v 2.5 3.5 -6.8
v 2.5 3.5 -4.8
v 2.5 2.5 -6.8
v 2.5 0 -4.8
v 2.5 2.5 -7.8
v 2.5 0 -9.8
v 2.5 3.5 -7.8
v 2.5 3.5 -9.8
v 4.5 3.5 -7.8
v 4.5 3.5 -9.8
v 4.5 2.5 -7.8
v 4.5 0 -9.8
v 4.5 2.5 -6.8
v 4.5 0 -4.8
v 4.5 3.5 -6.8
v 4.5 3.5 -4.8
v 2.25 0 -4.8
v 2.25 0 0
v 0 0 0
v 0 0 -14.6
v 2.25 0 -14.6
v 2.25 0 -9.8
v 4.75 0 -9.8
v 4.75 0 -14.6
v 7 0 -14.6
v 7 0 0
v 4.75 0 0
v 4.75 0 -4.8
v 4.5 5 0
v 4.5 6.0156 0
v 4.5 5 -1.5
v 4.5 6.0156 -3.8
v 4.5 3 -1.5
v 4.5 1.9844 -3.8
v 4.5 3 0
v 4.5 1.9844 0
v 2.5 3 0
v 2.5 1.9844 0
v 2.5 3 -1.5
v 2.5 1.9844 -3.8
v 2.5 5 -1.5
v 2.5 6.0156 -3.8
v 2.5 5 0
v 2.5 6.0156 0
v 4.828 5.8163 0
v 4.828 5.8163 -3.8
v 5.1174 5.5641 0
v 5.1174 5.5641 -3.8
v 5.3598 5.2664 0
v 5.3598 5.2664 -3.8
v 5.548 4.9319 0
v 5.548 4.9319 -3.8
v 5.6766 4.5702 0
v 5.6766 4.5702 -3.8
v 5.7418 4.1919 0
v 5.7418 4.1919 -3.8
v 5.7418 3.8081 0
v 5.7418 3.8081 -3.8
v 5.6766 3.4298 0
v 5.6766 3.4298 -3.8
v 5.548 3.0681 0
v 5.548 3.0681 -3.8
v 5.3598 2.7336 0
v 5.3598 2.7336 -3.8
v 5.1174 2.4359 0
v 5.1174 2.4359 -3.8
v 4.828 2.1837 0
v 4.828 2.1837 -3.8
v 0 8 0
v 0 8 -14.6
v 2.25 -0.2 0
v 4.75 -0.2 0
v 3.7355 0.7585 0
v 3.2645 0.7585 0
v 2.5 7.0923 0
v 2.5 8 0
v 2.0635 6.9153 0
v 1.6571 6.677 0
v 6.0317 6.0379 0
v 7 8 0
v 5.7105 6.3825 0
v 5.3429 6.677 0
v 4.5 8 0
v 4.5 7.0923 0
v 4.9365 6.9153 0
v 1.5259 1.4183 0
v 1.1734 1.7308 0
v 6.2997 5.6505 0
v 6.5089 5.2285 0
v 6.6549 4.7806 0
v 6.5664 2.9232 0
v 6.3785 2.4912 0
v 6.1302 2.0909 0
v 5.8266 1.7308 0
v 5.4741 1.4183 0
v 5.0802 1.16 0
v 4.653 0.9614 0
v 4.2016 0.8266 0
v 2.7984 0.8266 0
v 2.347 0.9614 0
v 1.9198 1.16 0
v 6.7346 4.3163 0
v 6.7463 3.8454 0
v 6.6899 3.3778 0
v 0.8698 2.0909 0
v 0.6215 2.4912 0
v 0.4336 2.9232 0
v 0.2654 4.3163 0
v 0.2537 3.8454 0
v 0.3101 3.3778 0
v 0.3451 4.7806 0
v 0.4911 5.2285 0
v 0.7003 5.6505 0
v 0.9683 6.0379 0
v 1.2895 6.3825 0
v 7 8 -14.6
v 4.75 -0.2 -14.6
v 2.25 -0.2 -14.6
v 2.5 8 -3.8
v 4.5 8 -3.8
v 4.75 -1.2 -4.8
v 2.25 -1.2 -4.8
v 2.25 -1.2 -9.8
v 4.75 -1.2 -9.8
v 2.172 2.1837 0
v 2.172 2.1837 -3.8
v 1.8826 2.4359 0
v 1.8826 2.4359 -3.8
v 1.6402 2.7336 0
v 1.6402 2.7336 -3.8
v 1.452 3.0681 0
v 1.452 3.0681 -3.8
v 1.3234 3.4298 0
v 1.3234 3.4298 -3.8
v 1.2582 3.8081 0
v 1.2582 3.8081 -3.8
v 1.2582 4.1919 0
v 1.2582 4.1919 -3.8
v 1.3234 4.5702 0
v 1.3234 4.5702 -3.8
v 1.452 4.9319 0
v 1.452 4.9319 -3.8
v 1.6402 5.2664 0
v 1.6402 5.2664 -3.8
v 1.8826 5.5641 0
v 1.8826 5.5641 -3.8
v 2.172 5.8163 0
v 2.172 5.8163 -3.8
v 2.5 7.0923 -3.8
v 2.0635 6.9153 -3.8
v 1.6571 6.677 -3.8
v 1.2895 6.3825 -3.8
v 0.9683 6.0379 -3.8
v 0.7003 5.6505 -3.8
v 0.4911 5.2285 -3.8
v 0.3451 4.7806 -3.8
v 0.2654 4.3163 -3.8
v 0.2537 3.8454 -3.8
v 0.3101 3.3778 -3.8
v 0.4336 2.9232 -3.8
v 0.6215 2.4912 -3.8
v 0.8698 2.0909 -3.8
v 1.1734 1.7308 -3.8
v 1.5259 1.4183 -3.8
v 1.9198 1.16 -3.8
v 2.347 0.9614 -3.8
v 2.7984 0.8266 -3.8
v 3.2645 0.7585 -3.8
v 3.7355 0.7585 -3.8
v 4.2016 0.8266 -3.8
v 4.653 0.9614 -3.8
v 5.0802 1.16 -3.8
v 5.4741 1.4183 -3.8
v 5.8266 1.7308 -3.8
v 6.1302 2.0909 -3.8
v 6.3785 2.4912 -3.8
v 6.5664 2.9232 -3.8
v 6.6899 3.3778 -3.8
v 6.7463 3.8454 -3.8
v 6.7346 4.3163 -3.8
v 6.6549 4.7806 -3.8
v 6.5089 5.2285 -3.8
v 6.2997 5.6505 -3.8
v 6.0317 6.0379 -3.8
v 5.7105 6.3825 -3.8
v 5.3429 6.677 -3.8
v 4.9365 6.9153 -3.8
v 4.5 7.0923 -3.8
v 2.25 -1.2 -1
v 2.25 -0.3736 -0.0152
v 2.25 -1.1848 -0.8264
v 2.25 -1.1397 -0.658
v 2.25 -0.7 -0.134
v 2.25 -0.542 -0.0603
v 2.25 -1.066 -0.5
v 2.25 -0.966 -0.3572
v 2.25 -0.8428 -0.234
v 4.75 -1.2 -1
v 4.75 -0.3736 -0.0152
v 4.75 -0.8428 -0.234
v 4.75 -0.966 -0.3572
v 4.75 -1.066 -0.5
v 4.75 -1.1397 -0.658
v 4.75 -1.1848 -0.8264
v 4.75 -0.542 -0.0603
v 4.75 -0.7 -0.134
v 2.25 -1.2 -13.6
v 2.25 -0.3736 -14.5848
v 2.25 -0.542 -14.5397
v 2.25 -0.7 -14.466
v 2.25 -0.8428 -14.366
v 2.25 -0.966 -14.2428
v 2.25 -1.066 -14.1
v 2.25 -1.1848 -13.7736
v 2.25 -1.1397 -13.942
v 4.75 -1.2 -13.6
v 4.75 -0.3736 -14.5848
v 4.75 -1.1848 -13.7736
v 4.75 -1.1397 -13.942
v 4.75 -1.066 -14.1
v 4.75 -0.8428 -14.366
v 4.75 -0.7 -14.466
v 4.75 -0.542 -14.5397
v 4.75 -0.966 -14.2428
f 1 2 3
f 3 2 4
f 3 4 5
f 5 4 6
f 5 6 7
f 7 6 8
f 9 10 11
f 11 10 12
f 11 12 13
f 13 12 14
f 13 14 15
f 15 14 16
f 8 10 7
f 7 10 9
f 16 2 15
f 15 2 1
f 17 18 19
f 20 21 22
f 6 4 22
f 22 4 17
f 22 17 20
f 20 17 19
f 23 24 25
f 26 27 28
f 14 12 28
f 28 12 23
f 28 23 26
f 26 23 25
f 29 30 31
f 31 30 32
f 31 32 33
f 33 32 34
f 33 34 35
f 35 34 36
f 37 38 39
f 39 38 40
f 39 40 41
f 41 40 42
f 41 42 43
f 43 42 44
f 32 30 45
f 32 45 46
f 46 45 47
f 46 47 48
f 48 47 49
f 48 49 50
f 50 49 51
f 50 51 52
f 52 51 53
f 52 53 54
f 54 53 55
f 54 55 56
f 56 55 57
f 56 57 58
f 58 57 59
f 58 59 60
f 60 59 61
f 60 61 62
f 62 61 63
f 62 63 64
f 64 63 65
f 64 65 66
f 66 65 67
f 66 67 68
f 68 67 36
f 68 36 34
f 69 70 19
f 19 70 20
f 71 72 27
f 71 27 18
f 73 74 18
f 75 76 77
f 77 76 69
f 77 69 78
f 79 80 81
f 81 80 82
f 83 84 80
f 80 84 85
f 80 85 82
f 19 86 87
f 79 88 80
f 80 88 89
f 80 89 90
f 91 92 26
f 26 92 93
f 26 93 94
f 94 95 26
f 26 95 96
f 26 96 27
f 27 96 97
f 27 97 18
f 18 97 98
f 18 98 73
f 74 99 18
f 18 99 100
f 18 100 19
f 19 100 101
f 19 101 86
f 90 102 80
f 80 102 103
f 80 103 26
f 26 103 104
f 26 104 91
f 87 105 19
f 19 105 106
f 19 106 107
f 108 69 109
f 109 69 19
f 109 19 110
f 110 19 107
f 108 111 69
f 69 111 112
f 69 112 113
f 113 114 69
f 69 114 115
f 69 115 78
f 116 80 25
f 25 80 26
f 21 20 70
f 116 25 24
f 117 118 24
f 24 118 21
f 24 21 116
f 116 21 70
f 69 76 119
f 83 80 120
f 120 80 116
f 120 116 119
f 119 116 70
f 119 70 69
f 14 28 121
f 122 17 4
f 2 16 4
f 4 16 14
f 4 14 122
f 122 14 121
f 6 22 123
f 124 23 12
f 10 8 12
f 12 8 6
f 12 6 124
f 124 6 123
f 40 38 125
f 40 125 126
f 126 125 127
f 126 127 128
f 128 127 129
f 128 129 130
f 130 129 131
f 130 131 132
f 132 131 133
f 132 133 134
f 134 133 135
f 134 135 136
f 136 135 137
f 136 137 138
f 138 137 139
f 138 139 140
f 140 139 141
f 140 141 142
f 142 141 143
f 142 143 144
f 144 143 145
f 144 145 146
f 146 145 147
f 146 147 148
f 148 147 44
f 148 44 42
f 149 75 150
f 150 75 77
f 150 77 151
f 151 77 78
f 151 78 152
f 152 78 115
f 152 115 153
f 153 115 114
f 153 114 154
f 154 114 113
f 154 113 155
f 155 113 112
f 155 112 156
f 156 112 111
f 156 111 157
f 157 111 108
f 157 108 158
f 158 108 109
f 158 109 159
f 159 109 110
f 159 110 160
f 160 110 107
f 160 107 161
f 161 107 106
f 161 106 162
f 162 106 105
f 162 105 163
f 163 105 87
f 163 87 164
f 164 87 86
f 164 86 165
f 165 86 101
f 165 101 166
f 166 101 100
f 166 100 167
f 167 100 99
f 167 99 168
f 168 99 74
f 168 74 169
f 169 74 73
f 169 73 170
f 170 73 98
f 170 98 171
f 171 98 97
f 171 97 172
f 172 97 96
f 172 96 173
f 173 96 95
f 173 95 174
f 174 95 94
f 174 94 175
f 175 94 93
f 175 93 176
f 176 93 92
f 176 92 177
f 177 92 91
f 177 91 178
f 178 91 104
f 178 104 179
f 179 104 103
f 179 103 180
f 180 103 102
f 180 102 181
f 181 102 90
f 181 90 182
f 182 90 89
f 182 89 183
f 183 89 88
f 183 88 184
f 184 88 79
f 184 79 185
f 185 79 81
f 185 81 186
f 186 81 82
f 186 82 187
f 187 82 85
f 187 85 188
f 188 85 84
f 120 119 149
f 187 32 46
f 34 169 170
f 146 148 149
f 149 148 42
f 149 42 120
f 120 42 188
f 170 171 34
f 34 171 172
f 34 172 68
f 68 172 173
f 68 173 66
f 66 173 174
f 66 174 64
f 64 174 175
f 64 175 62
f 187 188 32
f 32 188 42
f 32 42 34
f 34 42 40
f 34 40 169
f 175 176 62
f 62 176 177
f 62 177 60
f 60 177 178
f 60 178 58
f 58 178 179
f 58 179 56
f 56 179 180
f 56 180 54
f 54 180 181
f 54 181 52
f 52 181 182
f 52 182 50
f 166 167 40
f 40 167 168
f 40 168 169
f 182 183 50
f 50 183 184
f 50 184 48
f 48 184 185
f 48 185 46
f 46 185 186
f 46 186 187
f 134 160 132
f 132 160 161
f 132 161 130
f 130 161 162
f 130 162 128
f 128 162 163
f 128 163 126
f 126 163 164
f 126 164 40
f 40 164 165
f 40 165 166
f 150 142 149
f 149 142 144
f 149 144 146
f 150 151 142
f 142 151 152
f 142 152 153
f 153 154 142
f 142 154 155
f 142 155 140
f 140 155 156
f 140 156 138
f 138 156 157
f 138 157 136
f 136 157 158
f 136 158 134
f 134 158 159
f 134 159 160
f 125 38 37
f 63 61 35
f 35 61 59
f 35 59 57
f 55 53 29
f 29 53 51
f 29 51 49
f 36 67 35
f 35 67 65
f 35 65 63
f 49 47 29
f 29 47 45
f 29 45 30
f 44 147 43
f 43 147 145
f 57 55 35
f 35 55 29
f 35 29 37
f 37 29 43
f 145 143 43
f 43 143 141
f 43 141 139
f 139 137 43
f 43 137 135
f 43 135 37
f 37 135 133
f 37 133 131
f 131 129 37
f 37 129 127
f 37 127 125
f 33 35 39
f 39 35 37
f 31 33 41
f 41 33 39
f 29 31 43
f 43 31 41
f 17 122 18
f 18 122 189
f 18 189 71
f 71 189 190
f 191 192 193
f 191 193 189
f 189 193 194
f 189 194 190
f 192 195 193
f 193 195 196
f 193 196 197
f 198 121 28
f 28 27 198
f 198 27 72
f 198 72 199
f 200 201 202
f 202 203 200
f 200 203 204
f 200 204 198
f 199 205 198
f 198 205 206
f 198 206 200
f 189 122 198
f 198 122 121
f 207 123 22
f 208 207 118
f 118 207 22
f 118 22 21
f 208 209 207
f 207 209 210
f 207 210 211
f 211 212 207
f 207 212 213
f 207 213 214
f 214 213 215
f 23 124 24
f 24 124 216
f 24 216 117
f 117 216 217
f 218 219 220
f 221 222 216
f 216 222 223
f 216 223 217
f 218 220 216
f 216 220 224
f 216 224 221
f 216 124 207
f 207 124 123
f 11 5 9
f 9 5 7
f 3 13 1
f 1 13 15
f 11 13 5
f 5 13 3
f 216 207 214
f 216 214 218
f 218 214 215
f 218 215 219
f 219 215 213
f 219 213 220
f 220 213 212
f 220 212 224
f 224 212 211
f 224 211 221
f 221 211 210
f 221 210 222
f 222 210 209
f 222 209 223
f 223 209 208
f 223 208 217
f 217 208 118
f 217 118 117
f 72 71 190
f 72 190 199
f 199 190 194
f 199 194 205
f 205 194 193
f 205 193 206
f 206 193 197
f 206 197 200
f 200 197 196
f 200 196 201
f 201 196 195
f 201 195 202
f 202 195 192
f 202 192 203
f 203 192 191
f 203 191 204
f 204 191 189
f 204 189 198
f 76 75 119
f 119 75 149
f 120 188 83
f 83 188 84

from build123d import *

# Parameters (mm, degrees)
SZKIC1_W                    = 7
SZKIC1_H                    = 14.6
DODANIE_WYCI_GNI_CIE1_DEPTH = 8
SZKIC2_W                    = 2
SZKIC2_H                    = 5
WYTNIJ_WYCI_GNI_CIE1_DEPTH  = 3.5
SZKIC7_R                    = 3.25
SZKIC7_R_2                  = 2.25
WYTNIJ_WYCI_GNI_CIE4_DEPTH  = 3.8
SZKIC10_W                   = 2
SZKIC10_H                   = 6.184658438
WYTNIJ_WYCI_GNI_CIE6_DEPTH  = 3.8
SZKIC12_W                   = 1.5
SZKIC12_H                   = 2
DODANIE_WYCI_GNI_CIE4_DEPTH = 2
SZKIC15_W                   = 2.5
SZKIC15_H                   = 4.8
DODANIE_WYCI_GNI_CIE6_DEPTH = 1.2
SZKIC16_W                   = 2
SZKIC16_H                   = 1
DODANIE_WYCI_GNI_CIE7_DEPTH = 1
ZAOKR_GLENIE2_R             = 1
SZKIC17_W                   = 2
SZKIC17_H                   = 3.8
WYTNIJ_WYCI_GNI_CIE7_DEPTH  = 2


with BuildPart() as part:
    # Szkic1 → Dodanie-wyciągnięcie1 (new body)
    with BuildSketch(Plane(origin=(0, 0, 0), x_dir=(1, 0, 0), z_dir=(0, 1, 0))):
        with Locations((3.5, 7.3)):
            Rectangle(SZKIC1_W, SZKIC1_H)
    extrude(amount=DODANIE_WYCI_GNI_CIE1_DEPTH)

    # Szkic2 → Wytnij-wyciągnięcie1 (cut)
    with BuildSketch(Plane.XZ):
        with Locations((3.5, -7.3)):
            Rectangle(SZKIC2_W, SZKIC2_H)
    extrude(amount=-WYTNIJ_WYCI_GNI_CIE1_DEPTH, mode=Mode.SUBTRACT)

    # Szkic7 → Wytnij-wyciągnięcie4 (cut)
    with BuildSketch(Plane.XY):
        with Locations((3.5, 4)):
            Circle(SZKIC7_R)
        with Locations((3.5, 4)):
            Circle(SZKIC7_R_2, mode=Mode.SUBTRACT)
    extrude(amount=-WYTNIJ_WYCI_GNI_CIE4_DEPTH, mode=Mode.SUBTRACT)

    # Szkic10 → Wytnij-wyciągnięcie6 (cut)
    with BuildSketch(Plane.XY):
        with Locations((3.5, 4)):
            Rectangle(SZKIC10_W, SZKIC10_H)
    extrude(amount=-WYTNIJ_WYCI_GNI_CIE6_DEPTH, mode=Mode.SUBTRACT)

    # Szkic12 → Dodanie-wyciągnięcie4 (add)
    with BuildSketch(Plane(origin=(2.5, 0, 0), x_dir=(0, 0, -1), z_dir=(1, 0, 0))):
        with Locations((0.75, 4)):
            Rectangle(SZKIC12_W, SZKIC12_H)
    extrude(amount=DODANIE_WYCI_GNI_CIE4_DEPTH)

    # Szkic15 → Dodanie-wyciągnięcie6 (add)
    with BuildSketch(Plane.XZ):
        with Locations((3.5, -2.4)):
            Rectangle(SZKIC15_W, SZKIC15_H)
        with Locations((3.5, -12.2)):
            Rectangle(SZKIC15_W, SZKIC15_H)
    extrude(amount=DODANIE_WYCI_GNI_CIE6_DEPTH)

    # Szkic16 → Dodanie-wyciągnięcie7 (add)
    with BuildSketch(Plane.XZ.offset(-3.5)):
        with Locations((3.5, -7.3)):
            Rectangle(SZKIC16_W, SZKIC16_H)
    extrude(amount=DODANIE_WYCI_GNI_CIE7_DEPTH)

    # Zaokrąglenie2
    zaokr_glenie2_edges = [part.edges().sort_by_distance(p)[0] for p in [
        (3.5, -1.2, -14.6),
        (3.5, -1.2, 0),
    ]]
    fillet(zaokr_glenie2_edges, radius=ZAOKR_GLENIE2_R)

    # Szkic17 → Wytnij-wyciągnięcie7 (cut)
    with BuildSketch(Plane(origin=(0, 8, 0), x_dir=(1, 0, 0), z_dir=(0, 1, 0))):
        with Locations((3.5, 1.9)):
            Rectangle(SZKIC17_W, SZKIC17_H)
    extrude(amount=-WYTNIJ_WYCI_GNI_CIE7_DEPTH, mode=Mode.SUBTRACT)


solid = part.part
